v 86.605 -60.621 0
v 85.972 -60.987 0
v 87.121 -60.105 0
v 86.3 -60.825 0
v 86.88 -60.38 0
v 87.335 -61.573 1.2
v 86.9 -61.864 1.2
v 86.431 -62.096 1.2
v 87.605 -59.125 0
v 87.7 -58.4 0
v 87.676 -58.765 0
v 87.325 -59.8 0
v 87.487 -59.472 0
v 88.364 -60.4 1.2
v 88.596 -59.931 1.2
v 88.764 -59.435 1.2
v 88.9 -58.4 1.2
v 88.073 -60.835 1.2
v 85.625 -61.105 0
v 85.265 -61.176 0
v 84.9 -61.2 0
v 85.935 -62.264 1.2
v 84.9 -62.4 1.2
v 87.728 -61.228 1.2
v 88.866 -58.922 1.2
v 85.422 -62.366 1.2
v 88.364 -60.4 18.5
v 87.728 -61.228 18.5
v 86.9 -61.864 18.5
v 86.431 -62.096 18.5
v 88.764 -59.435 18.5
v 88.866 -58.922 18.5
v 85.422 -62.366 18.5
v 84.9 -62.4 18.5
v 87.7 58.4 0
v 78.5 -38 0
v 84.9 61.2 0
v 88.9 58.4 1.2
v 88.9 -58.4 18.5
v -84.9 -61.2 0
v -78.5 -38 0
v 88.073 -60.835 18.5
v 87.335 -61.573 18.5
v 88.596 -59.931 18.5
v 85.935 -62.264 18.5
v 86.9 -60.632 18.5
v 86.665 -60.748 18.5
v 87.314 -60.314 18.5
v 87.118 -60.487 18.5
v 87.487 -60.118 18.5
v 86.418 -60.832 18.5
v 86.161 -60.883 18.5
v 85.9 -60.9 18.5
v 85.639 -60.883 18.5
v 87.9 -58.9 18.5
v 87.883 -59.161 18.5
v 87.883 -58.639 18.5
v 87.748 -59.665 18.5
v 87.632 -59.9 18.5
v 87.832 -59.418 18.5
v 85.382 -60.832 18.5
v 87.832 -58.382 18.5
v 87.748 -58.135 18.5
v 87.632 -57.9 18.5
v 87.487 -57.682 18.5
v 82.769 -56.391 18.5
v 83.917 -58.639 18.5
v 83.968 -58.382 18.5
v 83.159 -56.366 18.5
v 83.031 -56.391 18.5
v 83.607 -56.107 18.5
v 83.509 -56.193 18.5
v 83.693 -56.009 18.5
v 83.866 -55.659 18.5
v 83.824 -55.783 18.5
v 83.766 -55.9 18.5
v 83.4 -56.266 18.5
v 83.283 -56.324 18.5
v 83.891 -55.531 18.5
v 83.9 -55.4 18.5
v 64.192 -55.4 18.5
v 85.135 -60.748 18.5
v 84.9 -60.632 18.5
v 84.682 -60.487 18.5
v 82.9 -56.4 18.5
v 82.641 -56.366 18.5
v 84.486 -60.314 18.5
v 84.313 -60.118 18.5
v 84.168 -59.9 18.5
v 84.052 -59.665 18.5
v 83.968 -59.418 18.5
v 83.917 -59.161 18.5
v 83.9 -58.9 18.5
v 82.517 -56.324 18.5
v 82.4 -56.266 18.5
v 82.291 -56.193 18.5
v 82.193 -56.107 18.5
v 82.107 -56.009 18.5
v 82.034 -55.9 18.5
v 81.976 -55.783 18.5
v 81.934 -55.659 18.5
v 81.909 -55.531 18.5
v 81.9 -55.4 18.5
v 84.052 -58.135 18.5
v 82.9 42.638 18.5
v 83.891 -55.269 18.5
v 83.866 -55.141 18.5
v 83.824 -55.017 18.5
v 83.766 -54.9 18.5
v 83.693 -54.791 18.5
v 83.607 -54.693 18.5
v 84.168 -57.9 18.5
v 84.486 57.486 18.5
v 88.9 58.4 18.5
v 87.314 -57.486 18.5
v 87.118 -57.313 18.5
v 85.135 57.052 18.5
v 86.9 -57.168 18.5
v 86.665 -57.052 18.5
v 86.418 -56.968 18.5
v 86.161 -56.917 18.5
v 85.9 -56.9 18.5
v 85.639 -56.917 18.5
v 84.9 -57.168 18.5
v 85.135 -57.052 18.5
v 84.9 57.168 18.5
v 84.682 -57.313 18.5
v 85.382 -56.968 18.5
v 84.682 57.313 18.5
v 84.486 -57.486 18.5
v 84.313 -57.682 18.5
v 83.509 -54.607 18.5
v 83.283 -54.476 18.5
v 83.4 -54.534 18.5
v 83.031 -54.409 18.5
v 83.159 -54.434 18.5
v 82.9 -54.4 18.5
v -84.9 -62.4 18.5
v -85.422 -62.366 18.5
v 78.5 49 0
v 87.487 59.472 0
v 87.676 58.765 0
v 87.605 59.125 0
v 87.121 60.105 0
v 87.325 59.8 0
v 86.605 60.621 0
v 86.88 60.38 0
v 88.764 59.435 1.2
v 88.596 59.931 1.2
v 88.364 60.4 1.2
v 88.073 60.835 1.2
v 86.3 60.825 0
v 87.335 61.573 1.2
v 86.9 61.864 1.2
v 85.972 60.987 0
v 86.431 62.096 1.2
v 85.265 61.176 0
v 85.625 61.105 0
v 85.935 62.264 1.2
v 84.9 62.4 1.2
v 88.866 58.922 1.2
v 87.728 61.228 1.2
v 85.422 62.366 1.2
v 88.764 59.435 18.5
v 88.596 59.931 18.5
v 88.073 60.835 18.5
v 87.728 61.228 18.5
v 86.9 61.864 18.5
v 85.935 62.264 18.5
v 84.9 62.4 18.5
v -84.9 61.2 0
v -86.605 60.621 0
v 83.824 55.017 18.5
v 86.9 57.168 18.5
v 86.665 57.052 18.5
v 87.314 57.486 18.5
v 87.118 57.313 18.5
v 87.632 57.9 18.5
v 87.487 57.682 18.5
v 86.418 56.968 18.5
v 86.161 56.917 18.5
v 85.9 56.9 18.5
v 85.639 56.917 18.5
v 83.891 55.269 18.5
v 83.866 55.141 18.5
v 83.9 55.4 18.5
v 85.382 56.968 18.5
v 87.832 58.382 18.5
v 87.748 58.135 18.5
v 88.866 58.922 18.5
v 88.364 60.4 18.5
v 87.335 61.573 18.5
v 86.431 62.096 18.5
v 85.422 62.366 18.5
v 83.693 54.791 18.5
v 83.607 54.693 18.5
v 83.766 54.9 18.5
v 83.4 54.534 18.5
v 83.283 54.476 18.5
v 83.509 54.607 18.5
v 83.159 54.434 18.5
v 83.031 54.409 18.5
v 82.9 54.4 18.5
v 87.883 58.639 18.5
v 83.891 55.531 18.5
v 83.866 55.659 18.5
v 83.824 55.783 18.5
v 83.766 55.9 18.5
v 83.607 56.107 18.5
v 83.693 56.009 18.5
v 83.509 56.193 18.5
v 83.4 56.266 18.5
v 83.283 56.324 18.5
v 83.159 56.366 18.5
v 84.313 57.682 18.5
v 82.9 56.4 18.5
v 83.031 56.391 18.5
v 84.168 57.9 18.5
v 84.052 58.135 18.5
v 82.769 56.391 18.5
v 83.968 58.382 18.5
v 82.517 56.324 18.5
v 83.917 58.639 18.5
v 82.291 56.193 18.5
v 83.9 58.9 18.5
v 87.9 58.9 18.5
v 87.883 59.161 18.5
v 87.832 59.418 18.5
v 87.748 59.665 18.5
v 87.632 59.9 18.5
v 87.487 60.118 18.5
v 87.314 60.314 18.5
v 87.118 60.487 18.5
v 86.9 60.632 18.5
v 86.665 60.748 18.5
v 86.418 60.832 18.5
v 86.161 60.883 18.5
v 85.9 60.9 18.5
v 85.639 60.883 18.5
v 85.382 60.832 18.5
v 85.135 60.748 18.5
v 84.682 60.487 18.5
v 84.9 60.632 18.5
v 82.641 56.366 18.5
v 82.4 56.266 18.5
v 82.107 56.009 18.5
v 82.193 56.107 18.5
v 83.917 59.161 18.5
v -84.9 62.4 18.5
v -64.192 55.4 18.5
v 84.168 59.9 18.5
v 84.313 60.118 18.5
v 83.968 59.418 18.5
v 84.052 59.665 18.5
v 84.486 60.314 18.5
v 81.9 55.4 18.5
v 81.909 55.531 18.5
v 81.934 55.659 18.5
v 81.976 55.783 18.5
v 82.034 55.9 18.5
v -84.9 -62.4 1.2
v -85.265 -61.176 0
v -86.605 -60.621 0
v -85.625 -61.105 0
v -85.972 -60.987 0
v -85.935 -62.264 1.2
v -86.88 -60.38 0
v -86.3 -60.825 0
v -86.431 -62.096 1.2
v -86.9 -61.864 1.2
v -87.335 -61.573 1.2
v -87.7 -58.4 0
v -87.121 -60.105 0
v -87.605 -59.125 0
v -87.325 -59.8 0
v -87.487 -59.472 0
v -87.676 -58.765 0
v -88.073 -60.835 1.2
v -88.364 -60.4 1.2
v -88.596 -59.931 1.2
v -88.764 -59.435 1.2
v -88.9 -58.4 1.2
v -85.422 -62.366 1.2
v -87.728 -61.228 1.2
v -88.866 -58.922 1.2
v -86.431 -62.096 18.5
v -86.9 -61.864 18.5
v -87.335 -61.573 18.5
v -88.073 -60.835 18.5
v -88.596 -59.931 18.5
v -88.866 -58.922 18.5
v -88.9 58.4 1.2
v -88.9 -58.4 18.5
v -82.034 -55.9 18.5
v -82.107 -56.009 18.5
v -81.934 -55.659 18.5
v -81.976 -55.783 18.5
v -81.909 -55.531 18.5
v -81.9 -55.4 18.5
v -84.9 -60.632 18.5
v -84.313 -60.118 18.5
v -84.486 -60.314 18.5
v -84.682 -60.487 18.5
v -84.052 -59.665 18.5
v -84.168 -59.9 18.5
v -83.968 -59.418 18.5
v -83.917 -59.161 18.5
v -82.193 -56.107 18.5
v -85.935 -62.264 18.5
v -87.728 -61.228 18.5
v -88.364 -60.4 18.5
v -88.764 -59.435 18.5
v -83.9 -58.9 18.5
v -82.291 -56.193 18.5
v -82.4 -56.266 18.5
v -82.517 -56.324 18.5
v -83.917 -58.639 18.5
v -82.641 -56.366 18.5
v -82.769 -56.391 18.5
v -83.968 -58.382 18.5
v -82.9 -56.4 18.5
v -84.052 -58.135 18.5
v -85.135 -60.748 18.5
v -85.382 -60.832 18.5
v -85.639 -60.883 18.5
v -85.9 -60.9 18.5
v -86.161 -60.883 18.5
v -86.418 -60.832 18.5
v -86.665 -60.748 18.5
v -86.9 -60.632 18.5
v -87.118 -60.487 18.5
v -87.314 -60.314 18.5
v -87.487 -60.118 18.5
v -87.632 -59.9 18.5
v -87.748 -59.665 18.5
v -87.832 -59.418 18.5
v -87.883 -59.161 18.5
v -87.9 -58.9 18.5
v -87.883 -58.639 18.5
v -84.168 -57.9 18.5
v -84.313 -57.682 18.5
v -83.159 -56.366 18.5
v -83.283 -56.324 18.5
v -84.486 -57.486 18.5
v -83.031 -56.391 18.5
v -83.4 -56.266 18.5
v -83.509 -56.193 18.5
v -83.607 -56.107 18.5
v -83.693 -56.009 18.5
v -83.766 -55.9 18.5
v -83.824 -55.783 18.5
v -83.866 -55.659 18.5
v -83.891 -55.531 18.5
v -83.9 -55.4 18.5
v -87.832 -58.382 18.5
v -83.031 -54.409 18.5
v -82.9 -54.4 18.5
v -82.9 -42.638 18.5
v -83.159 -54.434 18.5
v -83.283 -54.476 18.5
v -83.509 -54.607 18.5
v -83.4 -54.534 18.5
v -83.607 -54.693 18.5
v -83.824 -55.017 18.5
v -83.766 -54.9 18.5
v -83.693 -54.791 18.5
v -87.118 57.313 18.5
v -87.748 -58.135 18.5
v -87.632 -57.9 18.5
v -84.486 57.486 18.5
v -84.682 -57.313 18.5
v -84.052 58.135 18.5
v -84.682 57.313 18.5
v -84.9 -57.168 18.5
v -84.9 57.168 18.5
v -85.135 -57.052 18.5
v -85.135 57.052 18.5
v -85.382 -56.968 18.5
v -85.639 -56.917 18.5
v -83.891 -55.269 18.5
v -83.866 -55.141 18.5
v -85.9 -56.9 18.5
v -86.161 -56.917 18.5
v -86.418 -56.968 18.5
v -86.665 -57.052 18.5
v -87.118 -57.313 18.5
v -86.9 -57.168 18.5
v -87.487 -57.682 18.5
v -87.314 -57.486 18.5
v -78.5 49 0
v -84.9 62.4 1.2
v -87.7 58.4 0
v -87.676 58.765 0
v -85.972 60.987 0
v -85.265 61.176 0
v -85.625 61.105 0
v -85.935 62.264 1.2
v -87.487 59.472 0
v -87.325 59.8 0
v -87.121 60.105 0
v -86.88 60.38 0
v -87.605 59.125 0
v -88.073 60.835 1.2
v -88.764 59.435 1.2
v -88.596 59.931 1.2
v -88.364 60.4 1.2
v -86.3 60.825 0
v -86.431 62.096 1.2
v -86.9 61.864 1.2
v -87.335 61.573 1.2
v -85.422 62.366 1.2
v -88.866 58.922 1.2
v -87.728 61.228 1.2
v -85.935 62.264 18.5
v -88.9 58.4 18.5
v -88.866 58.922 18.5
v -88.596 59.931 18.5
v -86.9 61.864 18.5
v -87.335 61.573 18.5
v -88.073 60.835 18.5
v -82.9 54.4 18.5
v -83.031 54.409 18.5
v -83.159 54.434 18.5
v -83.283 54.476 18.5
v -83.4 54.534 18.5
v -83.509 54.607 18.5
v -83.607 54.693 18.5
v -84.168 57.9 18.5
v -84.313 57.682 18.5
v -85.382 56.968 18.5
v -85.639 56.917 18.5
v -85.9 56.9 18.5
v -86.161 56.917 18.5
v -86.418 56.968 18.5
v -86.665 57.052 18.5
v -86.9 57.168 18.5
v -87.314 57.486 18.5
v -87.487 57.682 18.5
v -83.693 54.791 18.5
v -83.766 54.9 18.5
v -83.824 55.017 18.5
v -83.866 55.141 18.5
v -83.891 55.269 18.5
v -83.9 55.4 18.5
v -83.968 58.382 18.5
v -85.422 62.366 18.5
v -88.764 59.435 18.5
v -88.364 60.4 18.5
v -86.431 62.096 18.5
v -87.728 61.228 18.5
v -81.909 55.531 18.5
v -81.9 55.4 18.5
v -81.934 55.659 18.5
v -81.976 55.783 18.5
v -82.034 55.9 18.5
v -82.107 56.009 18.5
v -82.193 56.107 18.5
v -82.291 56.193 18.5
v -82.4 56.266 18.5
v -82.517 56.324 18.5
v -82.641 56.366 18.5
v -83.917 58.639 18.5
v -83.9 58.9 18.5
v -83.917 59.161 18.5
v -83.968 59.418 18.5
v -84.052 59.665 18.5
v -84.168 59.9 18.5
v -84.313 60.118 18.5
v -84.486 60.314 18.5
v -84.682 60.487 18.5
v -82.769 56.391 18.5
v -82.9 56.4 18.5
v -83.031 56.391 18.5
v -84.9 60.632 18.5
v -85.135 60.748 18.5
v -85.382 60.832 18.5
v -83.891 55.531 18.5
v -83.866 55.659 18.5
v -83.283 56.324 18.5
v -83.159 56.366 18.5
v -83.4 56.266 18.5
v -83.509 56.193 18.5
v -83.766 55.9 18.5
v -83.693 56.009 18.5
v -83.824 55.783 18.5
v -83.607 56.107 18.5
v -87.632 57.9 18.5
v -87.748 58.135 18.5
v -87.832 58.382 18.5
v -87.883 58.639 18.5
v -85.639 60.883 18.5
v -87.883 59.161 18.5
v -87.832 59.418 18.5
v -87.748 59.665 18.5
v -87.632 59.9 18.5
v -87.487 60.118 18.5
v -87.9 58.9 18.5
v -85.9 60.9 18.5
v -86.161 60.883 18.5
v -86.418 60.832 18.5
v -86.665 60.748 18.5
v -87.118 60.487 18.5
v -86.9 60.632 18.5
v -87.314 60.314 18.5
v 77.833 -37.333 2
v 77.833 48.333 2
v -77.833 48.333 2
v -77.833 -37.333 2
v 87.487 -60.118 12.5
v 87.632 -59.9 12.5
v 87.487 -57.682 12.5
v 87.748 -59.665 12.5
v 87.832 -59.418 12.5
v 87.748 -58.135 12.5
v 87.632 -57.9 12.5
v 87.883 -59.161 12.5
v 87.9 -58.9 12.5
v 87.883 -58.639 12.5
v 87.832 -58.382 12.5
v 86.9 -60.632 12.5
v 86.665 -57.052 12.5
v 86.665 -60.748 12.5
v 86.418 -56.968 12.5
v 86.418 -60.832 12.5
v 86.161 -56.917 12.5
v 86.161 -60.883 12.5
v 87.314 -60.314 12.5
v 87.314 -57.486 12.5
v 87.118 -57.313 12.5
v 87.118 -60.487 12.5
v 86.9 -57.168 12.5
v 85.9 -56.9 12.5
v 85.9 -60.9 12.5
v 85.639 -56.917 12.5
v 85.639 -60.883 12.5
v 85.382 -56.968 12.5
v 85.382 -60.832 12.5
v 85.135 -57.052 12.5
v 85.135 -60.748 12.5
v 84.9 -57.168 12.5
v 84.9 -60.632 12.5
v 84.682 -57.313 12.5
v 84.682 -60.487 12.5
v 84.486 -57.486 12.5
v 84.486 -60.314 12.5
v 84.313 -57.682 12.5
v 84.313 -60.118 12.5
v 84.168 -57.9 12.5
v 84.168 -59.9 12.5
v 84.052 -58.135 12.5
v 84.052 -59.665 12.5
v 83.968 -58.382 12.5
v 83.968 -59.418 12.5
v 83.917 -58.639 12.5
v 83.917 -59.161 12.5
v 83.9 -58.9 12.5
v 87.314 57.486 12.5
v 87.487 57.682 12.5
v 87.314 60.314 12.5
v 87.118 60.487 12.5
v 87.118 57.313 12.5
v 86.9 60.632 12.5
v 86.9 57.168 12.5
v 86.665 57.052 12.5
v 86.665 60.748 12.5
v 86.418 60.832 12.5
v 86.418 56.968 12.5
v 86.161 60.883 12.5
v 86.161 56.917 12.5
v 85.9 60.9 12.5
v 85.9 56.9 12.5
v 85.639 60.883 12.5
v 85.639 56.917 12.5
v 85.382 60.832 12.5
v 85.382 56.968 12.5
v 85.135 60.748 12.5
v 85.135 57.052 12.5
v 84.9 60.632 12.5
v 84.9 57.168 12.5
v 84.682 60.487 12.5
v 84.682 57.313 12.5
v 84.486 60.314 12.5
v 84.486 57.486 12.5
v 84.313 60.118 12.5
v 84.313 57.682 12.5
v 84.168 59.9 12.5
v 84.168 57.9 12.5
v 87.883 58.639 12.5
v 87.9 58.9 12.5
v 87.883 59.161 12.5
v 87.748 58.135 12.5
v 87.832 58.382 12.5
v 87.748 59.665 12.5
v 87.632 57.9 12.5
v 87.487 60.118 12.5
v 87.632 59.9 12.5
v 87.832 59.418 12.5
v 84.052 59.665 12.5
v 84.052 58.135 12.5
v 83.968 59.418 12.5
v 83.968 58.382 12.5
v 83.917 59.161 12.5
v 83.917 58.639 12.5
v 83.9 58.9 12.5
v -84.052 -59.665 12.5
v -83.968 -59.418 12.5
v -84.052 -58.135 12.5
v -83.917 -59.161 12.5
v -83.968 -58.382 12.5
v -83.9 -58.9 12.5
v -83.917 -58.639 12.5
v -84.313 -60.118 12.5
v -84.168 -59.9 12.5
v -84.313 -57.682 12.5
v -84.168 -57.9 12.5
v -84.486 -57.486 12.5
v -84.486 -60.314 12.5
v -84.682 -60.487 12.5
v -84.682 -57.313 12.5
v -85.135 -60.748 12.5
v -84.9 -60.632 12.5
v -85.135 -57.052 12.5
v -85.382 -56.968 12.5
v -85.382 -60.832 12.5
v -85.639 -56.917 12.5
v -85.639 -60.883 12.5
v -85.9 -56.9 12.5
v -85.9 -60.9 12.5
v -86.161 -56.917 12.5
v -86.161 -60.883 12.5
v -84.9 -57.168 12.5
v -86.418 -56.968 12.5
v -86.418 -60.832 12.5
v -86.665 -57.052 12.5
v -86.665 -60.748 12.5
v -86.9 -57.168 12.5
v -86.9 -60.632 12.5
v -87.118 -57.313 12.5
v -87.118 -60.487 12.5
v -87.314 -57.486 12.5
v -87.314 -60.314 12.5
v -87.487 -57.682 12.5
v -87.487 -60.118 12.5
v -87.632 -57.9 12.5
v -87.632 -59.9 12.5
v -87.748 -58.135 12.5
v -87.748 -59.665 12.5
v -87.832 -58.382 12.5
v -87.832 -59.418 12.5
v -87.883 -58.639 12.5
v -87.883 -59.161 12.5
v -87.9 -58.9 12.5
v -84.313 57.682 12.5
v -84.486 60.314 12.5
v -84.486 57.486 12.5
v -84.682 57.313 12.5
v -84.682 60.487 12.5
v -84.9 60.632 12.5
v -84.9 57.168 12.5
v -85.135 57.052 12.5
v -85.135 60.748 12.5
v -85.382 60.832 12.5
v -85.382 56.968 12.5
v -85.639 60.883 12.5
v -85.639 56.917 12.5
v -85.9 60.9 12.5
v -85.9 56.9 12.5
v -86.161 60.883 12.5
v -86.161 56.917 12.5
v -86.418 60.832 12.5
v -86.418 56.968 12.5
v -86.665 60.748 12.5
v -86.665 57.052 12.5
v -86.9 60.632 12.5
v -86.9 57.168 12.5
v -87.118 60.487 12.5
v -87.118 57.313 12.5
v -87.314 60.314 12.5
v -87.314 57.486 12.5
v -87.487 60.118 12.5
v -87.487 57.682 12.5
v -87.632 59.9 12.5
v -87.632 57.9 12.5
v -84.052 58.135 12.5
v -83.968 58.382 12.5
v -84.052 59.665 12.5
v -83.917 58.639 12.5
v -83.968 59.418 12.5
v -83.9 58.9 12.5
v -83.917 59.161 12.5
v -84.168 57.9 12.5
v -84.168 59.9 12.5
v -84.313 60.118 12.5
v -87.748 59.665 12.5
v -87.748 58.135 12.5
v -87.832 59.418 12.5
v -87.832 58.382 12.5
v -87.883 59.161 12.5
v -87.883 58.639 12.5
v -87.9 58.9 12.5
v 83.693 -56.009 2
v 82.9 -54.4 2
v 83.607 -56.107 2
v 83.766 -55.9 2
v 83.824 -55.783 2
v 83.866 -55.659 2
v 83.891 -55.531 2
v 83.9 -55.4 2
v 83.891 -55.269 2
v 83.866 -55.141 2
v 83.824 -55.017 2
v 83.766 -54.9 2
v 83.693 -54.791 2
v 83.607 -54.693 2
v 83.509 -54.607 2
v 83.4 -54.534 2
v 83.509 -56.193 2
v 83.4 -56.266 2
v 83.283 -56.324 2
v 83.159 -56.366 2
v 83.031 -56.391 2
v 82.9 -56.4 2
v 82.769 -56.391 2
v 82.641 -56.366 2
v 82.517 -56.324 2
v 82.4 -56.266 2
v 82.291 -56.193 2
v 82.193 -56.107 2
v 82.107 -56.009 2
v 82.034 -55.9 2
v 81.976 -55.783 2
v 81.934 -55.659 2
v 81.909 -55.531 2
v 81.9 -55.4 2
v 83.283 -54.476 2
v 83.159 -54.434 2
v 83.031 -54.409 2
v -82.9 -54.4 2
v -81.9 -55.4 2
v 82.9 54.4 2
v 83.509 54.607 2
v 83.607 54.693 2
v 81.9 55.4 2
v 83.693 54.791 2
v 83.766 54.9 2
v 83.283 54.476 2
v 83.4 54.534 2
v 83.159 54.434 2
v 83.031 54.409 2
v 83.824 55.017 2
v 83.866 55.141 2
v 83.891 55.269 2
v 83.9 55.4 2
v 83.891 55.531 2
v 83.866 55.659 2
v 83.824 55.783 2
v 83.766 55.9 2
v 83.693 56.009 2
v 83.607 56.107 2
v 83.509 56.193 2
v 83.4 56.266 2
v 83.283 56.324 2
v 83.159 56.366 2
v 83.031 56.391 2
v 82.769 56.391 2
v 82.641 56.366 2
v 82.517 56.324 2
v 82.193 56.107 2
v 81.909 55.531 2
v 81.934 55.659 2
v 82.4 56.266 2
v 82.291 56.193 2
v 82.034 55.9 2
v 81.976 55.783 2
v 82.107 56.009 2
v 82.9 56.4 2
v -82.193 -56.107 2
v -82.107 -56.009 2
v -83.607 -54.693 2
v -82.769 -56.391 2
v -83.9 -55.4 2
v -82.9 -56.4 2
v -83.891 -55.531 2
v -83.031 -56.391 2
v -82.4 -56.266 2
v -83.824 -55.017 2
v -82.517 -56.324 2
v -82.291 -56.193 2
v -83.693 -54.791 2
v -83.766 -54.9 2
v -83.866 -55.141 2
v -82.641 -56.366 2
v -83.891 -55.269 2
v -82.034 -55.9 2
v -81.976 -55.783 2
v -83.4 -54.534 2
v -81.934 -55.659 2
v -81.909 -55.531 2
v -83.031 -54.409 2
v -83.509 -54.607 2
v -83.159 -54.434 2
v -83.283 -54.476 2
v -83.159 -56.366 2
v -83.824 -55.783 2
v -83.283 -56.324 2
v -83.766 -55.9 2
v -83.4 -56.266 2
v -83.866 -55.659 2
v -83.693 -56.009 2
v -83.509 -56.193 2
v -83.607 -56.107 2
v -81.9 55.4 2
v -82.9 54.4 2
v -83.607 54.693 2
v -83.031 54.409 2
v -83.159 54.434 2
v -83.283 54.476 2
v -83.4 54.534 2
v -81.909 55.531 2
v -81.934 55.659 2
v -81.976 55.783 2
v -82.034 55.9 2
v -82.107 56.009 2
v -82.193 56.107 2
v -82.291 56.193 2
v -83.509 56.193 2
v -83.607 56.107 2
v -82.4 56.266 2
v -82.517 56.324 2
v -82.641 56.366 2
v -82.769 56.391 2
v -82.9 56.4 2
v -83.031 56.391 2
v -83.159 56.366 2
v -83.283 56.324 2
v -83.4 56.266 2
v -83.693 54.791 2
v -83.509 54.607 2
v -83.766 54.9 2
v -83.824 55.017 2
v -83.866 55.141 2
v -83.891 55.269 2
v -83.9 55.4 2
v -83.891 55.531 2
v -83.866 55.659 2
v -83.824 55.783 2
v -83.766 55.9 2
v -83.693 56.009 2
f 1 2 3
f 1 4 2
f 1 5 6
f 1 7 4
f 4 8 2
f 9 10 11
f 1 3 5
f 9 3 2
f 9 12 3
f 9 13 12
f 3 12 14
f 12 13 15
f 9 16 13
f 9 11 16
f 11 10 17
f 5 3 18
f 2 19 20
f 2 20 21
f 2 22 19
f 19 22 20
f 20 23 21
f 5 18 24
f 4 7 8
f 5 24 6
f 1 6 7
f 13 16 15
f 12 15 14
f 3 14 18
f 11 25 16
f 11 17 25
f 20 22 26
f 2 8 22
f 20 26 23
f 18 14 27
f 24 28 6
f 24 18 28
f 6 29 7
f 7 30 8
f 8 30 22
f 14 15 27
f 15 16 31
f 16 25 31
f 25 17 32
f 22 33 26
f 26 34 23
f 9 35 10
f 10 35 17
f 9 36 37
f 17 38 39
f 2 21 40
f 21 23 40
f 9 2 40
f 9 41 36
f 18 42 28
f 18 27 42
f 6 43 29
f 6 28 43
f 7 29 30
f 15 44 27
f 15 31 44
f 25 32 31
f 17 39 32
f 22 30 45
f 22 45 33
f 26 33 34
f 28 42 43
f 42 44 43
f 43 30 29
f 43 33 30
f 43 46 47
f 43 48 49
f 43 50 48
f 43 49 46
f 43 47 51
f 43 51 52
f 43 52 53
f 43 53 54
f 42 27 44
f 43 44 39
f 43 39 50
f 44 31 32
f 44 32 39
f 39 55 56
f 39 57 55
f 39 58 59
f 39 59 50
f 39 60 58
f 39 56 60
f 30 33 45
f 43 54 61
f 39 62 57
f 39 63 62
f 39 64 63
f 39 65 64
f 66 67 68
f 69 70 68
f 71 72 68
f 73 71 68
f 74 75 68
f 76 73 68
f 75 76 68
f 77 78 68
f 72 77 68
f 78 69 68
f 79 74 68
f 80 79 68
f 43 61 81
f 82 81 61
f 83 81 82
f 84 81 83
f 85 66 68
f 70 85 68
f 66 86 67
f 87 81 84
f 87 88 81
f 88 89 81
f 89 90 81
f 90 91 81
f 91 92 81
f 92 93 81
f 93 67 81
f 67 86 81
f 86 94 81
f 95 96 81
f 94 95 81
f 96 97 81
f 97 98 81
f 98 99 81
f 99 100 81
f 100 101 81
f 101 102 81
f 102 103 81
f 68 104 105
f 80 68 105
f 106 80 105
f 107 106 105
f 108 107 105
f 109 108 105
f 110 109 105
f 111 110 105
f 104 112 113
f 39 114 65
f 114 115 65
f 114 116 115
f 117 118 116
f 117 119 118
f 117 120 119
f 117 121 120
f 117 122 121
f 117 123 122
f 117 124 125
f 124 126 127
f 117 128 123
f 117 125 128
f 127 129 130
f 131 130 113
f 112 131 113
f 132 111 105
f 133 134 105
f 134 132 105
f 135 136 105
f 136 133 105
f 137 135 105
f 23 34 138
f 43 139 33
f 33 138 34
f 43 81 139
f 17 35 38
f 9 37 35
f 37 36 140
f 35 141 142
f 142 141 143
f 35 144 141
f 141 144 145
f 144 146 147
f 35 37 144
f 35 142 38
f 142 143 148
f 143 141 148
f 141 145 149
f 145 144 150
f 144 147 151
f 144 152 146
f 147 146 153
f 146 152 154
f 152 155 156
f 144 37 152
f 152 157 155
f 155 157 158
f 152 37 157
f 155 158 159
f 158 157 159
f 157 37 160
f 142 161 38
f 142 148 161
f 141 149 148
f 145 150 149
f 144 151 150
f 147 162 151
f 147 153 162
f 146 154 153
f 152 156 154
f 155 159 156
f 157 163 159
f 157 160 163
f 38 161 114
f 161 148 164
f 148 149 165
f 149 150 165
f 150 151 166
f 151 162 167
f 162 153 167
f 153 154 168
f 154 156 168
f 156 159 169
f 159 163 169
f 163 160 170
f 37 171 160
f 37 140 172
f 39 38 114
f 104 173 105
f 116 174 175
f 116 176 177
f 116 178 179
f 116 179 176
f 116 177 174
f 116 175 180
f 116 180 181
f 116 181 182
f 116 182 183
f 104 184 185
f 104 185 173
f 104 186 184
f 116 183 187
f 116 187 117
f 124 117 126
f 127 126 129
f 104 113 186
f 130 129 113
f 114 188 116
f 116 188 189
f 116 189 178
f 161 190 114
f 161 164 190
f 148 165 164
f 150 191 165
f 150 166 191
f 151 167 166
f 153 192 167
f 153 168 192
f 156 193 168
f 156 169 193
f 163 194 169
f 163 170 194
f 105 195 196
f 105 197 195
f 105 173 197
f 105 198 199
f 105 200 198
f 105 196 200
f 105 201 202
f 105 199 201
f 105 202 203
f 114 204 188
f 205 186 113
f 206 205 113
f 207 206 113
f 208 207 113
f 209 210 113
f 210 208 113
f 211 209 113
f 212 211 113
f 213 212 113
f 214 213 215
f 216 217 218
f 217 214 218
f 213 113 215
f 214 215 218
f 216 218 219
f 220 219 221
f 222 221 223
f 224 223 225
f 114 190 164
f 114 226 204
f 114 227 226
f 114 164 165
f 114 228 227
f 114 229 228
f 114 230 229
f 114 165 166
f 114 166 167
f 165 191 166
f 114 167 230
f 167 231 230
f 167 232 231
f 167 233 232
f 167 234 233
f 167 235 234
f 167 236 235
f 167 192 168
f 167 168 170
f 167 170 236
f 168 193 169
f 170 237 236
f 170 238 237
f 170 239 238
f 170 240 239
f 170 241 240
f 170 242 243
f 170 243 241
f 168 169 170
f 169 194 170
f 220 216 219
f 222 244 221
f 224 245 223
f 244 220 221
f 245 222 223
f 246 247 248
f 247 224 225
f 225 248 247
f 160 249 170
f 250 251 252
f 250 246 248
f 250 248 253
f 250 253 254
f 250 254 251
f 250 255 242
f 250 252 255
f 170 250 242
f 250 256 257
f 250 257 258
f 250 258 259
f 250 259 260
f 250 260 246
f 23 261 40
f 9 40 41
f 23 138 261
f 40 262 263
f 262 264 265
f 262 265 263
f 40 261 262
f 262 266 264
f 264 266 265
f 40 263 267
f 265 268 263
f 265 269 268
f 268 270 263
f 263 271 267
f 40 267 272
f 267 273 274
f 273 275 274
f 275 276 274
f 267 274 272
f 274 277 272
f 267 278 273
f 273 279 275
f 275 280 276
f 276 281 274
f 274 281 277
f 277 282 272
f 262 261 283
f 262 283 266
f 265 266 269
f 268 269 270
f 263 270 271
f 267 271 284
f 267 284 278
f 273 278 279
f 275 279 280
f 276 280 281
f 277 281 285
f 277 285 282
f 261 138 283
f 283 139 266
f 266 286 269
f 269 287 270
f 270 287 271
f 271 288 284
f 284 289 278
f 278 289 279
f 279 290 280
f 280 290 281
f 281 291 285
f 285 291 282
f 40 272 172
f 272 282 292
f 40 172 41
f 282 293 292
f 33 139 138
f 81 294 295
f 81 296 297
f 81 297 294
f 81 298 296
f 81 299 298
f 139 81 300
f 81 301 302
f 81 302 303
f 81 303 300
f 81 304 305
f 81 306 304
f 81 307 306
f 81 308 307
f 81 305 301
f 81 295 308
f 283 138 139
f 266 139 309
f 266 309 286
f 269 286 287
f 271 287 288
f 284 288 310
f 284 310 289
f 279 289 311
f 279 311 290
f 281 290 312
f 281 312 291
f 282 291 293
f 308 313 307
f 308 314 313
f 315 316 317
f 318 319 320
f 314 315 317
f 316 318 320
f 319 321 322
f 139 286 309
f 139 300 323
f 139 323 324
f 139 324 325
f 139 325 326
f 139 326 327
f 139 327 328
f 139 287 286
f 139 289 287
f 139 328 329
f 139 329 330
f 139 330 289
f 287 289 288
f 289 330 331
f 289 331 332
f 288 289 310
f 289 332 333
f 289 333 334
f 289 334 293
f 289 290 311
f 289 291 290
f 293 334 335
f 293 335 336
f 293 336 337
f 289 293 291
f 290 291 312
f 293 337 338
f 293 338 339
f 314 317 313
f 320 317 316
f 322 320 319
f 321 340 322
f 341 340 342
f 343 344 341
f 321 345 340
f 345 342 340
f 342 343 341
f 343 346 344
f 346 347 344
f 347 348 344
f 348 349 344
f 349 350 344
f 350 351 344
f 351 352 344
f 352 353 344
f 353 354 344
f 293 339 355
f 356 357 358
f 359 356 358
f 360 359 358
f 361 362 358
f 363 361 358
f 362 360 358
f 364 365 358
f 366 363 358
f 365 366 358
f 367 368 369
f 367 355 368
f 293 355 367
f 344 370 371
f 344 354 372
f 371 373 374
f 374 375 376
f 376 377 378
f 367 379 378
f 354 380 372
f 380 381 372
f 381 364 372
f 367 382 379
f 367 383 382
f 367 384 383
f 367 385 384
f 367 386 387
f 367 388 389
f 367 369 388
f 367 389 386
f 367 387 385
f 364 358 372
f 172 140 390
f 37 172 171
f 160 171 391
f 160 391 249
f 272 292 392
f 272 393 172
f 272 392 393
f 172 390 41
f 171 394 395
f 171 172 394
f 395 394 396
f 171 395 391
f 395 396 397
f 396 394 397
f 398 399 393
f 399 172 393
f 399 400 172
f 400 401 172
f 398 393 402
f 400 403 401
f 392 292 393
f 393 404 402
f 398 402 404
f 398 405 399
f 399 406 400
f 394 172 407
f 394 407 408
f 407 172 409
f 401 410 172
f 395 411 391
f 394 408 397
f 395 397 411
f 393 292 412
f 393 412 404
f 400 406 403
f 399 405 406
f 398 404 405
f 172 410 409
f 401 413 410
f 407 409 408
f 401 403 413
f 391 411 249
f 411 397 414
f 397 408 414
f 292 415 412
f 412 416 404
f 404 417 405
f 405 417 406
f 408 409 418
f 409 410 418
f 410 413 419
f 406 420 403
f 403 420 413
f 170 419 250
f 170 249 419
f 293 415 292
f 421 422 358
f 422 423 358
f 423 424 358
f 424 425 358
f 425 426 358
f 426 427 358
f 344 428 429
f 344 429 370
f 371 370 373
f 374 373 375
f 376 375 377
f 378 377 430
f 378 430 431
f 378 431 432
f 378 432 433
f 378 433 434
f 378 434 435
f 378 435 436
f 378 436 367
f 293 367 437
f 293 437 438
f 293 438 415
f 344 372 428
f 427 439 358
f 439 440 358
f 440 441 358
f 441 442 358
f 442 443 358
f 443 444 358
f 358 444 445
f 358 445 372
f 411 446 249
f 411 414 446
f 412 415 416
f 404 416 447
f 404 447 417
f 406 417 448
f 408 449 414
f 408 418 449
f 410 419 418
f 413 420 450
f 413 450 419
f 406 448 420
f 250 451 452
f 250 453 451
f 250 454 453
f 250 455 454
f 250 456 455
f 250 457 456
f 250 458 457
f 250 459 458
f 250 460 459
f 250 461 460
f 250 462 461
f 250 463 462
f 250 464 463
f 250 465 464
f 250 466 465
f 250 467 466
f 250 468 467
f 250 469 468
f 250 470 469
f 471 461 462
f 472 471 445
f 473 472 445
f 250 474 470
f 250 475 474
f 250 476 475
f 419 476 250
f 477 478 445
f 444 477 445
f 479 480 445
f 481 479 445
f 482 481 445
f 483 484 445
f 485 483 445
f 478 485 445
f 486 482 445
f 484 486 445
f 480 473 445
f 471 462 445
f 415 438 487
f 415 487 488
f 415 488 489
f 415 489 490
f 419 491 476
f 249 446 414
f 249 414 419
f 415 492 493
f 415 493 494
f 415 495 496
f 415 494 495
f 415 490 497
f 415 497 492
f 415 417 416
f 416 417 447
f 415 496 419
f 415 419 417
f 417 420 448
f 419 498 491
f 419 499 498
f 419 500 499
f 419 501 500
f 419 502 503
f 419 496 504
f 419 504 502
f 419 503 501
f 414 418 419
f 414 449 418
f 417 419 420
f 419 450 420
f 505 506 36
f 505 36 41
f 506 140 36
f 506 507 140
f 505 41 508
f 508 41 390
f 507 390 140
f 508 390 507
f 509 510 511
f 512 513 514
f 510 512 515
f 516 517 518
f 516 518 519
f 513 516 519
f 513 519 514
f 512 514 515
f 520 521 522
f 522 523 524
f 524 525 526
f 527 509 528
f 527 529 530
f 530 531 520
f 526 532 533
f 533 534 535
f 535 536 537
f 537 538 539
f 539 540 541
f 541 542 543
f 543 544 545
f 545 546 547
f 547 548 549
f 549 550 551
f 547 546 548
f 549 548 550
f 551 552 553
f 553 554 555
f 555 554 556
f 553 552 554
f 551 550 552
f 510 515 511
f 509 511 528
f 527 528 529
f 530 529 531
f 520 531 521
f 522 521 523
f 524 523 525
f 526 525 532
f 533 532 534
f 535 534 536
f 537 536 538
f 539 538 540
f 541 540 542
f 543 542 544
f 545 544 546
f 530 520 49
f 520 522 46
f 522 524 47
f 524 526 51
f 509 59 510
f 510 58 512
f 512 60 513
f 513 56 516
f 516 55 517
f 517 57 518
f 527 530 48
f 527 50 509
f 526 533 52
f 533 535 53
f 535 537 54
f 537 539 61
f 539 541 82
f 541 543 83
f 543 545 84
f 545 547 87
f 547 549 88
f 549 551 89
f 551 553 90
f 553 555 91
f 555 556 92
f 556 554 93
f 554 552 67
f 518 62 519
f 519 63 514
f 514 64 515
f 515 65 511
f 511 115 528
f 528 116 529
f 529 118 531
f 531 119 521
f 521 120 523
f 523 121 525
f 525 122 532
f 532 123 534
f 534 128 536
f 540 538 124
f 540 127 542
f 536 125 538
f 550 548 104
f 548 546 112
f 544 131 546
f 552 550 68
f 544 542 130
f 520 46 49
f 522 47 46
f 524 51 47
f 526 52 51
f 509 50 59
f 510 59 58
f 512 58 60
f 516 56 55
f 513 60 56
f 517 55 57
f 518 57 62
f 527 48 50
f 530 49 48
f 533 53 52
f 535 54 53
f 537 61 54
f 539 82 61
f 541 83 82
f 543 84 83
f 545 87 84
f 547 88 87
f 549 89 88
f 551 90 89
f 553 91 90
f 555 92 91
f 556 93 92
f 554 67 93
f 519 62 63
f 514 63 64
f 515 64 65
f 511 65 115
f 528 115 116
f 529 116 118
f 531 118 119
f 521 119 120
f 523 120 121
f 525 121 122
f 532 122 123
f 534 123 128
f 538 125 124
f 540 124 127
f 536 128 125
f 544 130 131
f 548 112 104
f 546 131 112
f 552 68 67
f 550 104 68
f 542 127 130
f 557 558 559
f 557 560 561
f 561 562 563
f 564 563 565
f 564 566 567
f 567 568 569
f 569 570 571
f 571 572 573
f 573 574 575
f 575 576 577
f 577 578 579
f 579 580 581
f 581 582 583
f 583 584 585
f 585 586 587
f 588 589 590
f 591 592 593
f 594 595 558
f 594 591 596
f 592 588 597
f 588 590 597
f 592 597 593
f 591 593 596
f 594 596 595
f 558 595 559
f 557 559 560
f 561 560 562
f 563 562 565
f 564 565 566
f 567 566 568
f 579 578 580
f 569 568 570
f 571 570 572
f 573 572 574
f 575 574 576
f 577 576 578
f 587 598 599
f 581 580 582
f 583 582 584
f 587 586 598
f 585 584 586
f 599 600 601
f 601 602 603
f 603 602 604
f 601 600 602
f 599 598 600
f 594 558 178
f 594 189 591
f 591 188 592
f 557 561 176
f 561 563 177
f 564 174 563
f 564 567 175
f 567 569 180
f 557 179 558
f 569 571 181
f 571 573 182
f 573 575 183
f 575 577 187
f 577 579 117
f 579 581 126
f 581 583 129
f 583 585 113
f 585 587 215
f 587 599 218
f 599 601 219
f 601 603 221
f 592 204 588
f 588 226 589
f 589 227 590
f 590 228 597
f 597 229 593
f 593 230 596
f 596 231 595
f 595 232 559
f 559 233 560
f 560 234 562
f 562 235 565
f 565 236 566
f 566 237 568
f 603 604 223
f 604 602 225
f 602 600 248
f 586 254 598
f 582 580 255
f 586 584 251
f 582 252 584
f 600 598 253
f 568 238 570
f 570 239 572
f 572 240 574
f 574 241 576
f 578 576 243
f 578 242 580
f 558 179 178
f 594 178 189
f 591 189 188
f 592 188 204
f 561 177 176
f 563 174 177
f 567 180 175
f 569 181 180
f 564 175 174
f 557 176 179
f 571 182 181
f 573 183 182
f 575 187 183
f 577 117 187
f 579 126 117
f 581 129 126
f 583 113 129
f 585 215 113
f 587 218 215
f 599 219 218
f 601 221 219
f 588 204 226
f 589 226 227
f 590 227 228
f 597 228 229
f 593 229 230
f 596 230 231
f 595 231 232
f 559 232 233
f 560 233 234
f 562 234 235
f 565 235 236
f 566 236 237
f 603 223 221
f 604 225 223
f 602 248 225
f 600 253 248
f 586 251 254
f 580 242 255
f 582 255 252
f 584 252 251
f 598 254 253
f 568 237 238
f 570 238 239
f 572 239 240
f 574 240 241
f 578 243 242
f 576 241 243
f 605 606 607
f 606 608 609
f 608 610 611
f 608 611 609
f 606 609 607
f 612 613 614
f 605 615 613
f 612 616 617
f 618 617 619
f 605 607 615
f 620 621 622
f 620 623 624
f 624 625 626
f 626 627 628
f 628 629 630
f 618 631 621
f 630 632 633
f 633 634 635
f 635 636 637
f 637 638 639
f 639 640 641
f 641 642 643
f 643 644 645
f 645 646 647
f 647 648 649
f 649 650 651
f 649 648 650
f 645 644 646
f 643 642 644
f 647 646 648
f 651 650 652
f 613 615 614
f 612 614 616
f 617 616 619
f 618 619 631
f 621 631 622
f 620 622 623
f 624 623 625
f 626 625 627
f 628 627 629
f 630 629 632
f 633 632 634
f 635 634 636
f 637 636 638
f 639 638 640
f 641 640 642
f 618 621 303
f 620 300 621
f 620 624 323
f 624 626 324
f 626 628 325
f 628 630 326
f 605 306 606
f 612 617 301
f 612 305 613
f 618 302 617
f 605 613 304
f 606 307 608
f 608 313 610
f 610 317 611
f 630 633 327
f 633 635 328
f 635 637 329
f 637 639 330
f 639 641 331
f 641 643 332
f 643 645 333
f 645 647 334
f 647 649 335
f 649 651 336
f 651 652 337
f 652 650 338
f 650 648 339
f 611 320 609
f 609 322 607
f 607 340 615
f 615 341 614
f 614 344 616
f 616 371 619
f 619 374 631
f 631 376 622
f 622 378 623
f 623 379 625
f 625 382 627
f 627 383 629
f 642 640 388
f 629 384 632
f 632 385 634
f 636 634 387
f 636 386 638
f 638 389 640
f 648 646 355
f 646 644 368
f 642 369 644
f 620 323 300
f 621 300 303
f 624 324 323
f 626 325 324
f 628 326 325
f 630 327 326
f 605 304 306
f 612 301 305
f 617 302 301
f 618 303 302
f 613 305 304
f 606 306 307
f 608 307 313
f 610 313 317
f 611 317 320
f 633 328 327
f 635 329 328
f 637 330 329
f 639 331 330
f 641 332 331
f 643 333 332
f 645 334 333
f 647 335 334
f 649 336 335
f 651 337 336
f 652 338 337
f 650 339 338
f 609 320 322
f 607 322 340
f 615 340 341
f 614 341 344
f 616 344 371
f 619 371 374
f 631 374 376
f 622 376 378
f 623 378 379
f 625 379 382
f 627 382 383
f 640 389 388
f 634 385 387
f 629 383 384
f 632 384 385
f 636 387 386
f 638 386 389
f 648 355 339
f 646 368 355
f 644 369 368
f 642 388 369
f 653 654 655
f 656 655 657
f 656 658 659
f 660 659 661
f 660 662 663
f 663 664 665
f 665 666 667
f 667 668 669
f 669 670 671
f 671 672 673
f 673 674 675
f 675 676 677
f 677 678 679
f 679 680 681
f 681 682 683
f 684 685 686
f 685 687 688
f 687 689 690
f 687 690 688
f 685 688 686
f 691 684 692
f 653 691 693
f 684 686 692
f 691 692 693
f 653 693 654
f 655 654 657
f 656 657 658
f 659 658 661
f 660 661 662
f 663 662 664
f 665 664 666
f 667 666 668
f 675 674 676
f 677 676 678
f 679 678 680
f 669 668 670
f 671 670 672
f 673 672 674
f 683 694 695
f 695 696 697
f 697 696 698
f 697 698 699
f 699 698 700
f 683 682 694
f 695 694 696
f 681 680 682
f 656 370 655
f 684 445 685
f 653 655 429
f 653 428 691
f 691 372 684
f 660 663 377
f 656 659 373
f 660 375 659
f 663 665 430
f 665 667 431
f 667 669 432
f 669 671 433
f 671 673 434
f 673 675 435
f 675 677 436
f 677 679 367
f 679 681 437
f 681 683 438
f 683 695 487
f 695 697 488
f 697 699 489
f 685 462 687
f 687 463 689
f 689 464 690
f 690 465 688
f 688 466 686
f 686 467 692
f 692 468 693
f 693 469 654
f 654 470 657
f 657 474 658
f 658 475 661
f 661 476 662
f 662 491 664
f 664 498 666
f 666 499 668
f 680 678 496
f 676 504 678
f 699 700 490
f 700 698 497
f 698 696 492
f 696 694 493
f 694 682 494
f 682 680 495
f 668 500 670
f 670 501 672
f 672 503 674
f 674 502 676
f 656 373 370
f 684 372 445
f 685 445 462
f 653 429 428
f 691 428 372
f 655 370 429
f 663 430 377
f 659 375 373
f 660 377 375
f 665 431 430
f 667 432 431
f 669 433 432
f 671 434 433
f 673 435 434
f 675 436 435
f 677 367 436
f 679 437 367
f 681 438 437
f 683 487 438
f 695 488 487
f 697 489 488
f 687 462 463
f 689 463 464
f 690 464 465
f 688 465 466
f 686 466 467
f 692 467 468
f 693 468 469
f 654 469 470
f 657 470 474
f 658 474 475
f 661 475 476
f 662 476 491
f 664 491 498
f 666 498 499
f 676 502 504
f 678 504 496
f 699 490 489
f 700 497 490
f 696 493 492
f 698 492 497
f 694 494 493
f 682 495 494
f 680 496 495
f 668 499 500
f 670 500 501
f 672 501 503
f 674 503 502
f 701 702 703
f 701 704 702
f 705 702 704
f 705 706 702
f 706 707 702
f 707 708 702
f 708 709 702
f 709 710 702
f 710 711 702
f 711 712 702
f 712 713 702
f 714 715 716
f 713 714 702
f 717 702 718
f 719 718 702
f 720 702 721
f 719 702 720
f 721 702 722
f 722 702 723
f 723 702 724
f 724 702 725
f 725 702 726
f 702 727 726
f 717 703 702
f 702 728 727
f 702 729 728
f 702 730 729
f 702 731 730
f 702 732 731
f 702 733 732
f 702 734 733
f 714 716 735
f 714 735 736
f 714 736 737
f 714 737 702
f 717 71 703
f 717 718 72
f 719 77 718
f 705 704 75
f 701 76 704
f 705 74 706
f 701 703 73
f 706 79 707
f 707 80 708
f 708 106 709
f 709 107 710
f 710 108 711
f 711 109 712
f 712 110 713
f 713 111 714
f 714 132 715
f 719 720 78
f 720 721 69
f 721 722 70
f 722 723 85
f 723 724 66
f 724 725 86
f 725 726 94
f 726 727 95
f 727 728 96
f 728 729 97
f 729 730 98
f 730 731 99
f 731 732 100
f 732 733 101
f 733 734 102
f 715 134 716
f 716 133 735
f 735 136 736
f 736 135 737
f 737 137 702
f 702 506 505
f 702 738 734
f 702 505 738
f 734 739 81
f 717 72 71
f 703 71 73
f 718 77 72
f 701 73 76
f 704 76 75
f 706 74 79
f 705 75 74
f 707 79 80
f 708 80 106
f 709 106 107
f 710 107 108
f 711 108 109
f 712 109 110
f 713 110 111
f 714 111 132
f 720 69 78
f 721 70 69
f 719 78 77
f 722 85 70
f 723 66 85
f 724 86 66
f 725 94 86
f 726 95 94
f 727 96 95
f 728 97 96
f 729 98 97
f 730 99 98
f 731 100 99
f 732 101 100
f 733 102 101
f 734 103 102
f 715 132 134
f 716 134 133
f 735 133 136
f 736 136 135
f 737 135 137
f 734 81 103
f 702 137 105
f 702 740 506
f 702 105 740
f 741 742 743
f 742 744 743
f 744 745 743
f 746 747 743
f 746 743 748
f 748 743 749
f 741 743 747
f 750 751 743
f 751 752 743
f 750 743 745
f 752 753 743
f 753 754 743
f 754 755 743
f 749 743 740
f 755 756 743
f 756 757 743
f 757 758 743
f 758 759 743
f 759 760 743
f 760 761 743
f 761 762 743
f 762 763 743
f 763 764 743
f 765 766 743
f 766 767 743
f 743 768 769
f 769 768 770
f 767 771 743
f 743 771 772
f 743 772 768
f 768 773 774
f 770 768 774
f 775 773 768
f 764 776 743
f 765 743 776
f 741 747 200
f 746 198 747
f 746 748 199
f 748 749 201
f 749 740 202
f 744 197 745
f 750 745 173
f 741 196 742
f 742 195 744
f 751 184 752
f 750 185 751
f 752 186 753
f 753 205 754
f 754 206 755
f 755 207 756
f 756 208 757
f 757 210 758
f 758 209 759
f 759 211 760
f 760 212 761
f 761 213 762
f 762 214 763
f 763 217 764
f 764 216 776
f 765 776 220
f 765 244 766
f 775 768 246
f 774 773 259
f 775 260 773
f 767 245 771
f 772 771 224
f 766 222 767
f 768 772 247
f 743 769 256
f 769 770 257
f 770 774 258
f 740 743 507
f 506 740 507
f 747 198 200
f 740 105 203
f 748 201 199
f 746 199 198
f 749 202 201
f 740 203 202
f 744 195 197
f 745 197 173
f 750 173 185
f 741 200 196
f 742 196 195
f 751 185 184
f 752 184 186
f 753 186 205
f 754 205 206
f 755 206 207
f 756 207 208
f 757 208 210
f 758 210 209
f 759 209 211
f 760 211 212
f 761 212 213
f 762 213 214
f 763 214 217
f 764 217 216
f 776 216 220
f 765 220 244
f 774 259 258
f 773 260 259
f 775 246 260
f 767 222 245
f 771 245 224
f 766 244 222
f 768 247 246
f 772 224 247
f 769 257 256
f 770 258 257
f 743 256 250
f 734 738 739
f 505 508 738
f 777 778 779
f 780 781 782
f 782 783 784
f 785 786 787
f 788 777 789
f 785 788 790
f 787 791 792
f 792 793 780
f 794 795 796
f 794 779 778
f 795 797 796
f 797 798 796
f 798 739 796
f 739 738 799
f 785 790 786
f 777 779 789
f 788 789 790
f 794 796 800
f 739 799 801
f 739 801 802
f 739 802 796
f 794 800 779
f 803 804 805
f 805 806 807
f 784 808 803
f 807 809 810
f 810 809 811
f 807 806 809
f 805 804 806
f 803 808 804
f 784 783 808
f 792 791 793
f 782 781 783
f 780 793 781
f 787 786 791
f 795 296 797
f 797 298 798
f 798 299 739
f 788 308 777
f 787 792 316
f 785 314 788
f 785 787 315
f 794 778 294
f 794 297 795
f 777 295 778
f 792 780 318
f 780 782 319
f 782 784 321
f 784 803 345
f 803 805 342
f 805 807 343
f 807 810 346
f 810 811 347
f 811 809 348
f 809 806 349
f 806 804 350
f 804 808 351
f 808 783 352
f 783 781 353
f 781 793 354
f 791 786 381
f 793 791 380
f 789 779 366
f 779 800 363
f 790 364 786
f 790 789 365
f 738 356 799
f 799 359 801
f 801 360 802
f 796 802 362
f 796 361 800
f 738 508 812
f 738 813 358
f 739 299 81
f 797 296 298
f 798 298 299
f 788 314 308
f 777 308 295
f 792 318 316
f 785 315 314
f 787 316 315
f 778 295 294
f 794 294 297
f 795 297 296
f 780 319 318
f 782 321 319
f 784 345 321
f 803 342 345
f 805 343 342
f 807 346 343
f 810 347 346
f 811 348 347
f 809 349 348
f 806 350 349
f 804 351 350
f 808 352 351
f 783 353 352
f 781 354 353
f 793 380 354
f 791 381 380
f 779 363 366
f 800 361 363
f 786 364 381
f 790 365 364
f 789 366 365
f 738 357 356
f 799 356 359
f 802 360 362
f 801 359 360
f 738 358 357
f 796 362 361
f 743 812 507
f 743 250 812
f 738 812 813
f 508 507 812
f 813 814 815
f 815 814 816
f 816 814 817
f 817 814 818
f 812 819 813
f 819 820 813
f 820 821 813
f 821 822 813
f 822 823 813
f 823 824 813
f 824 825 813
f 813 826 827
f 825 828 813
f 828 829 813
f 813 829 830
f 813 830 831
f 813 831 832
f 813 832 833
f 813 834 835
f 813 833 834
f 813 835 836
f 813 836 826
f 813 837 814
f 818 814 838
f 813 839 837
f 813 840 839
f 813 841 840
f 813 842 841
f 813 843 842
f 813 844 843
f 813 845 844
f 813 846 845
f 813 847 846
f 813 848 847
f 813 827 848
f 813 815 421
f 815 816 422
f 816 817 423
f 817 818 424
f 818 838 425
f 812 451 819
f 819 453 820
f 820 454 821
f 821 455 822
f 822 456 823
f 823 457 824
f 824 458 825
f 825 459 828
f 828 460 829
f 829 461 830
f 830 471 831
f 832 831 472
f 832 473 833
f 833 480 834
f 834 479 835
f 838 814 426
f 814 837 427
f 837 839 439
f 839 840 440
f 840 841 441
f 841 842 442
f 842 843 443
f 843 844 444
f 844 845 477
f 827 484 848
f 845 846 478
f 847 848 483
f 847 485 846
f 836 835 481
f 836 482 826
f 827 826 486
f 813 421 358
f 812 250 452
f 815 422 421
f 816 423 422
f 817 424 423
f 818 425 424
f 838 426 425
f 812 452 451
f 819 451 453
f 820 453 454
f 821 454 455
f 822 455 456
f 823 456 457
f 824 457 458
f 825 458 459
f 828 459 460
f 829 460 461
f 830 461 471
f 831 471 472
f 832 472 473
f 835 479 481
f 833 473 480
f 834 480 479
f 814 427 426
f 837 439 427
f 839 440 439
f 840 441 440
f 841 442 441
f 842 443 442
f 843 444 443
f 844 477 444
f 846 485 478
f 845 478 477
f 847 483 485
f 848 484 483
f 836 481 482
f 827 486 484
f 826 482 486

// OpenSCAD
// file: frame_dims.scad
// Shared frame dimensions for screen_wrapper.scad and back_cover.scad.
// Change sizes here so the wrapper and the back cover stay aligned.

screen_w  = 165;   // screen module width (+2 mm after first test fit was too narrow)
screen_h  = 110;   // screen module height
fit       = 0.4;   // clearance per side around the screen
wall      = 7;     // top/bottom wall thickness (needs room for the inserts)
side_wall = 6;     // left/right walls, thinner so it fits the 180 mm A1 mini bed
corner_r  = 4;     // outer corner radius

pocket_w = screen_w + 2 * fit;
pocket_h = screen_h + 2 * fit;
outer_w  = pocket_w + 2 * side_wall;
outer_h  = pocket_h + 2 * wall;

// Centers of the 4 corner M3 holes, with the frame centered on the origin
corner_holes = [for (sx = [-1, 1], sy = [-1, 1])
    [sx * (pocket_w + side_wall) / 2, sy * (pocket_h + wall) / 2]];

// Desk stands (stand.scad) screw into the back cover here, as seen from
// the back. The left stand sits 1/3 of the way from the left screw (13.5)
// to the island (46), then 3 mm further in; the right one mirrors it.
stand_left_x  = 13.5 + (46 - 13.5) / 3 + 3;
stand_x       = [stand_left_x, outer_w - stand_left_x];  // from the cover's left edge
stand_screw_y = [12, 35];        // screw heights, from the cover's bottom edge

module rounded_rect(w, h, r) {
    offset(r) square([w - 2 * r, h - 2 * r], center = true);
}
// main file
// Raspberry Pi 5 Home Assistant panel: screen wrapper (front bezel)
//
// The screen drops in from the back and rests against the front plate.
// A back cover (next part, holds the Pi 5) screws into the 4 corner
// heat-set inserts on the back rim.
//
// Print face-down (front plate on the bed), no supports needed.
// Geometry is authored as seen from the FRONT ("left" = your left when
// looking at the screen) and mirrored at the end so it prints correctly.

// Screen size, wall thickness and corner holes are shared with the
// back cover in frame_dims.scad.
include <frame_dims.scad>

/* [Screen module] */
screen_d = 16.5;   // pocket depth (front plate to back rim)

/* [Visible window: bezel overlap from each screen edge] */
// Measure from each glass edge to where the lit pixels start.
// Active area is 6.0 x 3.28 in (152.4 x 83.3 mm); this window is 153 x 85.
win_left   = 5;
win_right  = 5;
win_top    = 7;
win_bottom = 18;

/* [Shell] */
face         = 2;    // front plate thickness
edge_chamfer = 1.2;  // chamfer on the outer front edge
win_chamfer  = 1;    // chamfer on the window edge (front side)
back_extra   = 0;    // extra wall depth behind the screen

/* [Back cover mounting] */
inserts      = true;
insert_d     = 4.0;  // hole for M3 x 5 heat-set insert (check your inserts)
insert_depth = 6;

/* [Side cutouts] */
// Notches in the wall from the back rim, for side-facing ports.
// Each entry: [side, offset from that edge's center, width, height from back]
// side is "left", "right", "top" or "bottom" (as seen from the front).
// Example: [["right", 20, 30, 10]]
cutouts = [];

$fn = 48;

outer_d  = face + screen_d + back_extra;

assert(corner_r > edge_chamfer, "corner_r must be larger than edge_chamfer");
assert(!inserts || min(wall, side_wall) >= insert_d + 2, "wall too thin for the inserts");

module outer_body() {
    hull() {
        linear_extrude(0.01)
            rounded_rect(outer_w - 2 * edge_chamfer, outer_h - 2 * edge_chamfer,
                         corner_r - edge_chamfer);
        translate([0, 0, edge_chamfer])
            linear_extrude(outer_d - edge_chamfer)
                rounded_rect(outer_w, outer_h, corner_r);
    }
}

module screen_pocket() {
    translate([0, 0, face])
        linear_extrude(outer_d) {
            square([pocket_w, pocket_h], center = true);
            // Corner reliefs so the screen's sharp corners seat fully
            for (sx = [-1, 1], sy = [-1, 1])
                translate([sx * pocket_w / 2, sy * pocket_h / 2]) circle(r = 1);
        }
}

module window() {
    x0 = -screen_w / 2 + win_left;
    x1 =  screen_w / 2 - win_right;
    y0 = -screen_h / 2 + win_bottom;
    y1 =  screen_h / 2 - win_top;
    translate([(x0 + x1) / 2, (y0 + y1) / 2, 0])
        hull() {
            translate([0, 0, -0.01])
                linear_extrude(0.01)
                    square([x1 - x0 + 2 * win_chamfer, y1 - y0 + 2 * win_chamfer], center = true);
            translate([0, 0, win_chamfer])
                linear_extrude(face)
                    square([x1 - x0, y1 - y0], center = true);
        }
}

module insert_holes() {
    for (p = corner_holes)
        translate([p[0], p[1], outer_d - insert_depth])
            cylinder(d = insert_d, h = insert_depth + 1);
}

module side_cutout(c) {
    side = c[0]; offs = c[1]; w = c[2]; h = c[3];
    z = outer_d - h;
    if (side == "left" || side == "right")
        translate([(side == "right" ? 1 : -1) * (pocket_w + side_wall) / 2, offs, z + (h + 1) / 2])
            cube([side_wall + 2, w, h + 1], center = true);
    else
        translate([offs, (side == "top" ? 1 : -1) * (pocket_h + wall) / 2, z + (h + 1) / 2])
            cube([w, wall + 2, h + 1], center = true);
}

module screen_wrapper() {
    difference() {
        outer_body();
        screen_pocket();
        window();
        if (inserts) insert_holes();
        for (c = cutouts) side_cutout(c);
    }
}

mirror([1, 0, 0]) screen_wrapper();

echo(str("Outer size: ", outer_w, " x ", outer_h, " x ", outer_d, " mm"));
